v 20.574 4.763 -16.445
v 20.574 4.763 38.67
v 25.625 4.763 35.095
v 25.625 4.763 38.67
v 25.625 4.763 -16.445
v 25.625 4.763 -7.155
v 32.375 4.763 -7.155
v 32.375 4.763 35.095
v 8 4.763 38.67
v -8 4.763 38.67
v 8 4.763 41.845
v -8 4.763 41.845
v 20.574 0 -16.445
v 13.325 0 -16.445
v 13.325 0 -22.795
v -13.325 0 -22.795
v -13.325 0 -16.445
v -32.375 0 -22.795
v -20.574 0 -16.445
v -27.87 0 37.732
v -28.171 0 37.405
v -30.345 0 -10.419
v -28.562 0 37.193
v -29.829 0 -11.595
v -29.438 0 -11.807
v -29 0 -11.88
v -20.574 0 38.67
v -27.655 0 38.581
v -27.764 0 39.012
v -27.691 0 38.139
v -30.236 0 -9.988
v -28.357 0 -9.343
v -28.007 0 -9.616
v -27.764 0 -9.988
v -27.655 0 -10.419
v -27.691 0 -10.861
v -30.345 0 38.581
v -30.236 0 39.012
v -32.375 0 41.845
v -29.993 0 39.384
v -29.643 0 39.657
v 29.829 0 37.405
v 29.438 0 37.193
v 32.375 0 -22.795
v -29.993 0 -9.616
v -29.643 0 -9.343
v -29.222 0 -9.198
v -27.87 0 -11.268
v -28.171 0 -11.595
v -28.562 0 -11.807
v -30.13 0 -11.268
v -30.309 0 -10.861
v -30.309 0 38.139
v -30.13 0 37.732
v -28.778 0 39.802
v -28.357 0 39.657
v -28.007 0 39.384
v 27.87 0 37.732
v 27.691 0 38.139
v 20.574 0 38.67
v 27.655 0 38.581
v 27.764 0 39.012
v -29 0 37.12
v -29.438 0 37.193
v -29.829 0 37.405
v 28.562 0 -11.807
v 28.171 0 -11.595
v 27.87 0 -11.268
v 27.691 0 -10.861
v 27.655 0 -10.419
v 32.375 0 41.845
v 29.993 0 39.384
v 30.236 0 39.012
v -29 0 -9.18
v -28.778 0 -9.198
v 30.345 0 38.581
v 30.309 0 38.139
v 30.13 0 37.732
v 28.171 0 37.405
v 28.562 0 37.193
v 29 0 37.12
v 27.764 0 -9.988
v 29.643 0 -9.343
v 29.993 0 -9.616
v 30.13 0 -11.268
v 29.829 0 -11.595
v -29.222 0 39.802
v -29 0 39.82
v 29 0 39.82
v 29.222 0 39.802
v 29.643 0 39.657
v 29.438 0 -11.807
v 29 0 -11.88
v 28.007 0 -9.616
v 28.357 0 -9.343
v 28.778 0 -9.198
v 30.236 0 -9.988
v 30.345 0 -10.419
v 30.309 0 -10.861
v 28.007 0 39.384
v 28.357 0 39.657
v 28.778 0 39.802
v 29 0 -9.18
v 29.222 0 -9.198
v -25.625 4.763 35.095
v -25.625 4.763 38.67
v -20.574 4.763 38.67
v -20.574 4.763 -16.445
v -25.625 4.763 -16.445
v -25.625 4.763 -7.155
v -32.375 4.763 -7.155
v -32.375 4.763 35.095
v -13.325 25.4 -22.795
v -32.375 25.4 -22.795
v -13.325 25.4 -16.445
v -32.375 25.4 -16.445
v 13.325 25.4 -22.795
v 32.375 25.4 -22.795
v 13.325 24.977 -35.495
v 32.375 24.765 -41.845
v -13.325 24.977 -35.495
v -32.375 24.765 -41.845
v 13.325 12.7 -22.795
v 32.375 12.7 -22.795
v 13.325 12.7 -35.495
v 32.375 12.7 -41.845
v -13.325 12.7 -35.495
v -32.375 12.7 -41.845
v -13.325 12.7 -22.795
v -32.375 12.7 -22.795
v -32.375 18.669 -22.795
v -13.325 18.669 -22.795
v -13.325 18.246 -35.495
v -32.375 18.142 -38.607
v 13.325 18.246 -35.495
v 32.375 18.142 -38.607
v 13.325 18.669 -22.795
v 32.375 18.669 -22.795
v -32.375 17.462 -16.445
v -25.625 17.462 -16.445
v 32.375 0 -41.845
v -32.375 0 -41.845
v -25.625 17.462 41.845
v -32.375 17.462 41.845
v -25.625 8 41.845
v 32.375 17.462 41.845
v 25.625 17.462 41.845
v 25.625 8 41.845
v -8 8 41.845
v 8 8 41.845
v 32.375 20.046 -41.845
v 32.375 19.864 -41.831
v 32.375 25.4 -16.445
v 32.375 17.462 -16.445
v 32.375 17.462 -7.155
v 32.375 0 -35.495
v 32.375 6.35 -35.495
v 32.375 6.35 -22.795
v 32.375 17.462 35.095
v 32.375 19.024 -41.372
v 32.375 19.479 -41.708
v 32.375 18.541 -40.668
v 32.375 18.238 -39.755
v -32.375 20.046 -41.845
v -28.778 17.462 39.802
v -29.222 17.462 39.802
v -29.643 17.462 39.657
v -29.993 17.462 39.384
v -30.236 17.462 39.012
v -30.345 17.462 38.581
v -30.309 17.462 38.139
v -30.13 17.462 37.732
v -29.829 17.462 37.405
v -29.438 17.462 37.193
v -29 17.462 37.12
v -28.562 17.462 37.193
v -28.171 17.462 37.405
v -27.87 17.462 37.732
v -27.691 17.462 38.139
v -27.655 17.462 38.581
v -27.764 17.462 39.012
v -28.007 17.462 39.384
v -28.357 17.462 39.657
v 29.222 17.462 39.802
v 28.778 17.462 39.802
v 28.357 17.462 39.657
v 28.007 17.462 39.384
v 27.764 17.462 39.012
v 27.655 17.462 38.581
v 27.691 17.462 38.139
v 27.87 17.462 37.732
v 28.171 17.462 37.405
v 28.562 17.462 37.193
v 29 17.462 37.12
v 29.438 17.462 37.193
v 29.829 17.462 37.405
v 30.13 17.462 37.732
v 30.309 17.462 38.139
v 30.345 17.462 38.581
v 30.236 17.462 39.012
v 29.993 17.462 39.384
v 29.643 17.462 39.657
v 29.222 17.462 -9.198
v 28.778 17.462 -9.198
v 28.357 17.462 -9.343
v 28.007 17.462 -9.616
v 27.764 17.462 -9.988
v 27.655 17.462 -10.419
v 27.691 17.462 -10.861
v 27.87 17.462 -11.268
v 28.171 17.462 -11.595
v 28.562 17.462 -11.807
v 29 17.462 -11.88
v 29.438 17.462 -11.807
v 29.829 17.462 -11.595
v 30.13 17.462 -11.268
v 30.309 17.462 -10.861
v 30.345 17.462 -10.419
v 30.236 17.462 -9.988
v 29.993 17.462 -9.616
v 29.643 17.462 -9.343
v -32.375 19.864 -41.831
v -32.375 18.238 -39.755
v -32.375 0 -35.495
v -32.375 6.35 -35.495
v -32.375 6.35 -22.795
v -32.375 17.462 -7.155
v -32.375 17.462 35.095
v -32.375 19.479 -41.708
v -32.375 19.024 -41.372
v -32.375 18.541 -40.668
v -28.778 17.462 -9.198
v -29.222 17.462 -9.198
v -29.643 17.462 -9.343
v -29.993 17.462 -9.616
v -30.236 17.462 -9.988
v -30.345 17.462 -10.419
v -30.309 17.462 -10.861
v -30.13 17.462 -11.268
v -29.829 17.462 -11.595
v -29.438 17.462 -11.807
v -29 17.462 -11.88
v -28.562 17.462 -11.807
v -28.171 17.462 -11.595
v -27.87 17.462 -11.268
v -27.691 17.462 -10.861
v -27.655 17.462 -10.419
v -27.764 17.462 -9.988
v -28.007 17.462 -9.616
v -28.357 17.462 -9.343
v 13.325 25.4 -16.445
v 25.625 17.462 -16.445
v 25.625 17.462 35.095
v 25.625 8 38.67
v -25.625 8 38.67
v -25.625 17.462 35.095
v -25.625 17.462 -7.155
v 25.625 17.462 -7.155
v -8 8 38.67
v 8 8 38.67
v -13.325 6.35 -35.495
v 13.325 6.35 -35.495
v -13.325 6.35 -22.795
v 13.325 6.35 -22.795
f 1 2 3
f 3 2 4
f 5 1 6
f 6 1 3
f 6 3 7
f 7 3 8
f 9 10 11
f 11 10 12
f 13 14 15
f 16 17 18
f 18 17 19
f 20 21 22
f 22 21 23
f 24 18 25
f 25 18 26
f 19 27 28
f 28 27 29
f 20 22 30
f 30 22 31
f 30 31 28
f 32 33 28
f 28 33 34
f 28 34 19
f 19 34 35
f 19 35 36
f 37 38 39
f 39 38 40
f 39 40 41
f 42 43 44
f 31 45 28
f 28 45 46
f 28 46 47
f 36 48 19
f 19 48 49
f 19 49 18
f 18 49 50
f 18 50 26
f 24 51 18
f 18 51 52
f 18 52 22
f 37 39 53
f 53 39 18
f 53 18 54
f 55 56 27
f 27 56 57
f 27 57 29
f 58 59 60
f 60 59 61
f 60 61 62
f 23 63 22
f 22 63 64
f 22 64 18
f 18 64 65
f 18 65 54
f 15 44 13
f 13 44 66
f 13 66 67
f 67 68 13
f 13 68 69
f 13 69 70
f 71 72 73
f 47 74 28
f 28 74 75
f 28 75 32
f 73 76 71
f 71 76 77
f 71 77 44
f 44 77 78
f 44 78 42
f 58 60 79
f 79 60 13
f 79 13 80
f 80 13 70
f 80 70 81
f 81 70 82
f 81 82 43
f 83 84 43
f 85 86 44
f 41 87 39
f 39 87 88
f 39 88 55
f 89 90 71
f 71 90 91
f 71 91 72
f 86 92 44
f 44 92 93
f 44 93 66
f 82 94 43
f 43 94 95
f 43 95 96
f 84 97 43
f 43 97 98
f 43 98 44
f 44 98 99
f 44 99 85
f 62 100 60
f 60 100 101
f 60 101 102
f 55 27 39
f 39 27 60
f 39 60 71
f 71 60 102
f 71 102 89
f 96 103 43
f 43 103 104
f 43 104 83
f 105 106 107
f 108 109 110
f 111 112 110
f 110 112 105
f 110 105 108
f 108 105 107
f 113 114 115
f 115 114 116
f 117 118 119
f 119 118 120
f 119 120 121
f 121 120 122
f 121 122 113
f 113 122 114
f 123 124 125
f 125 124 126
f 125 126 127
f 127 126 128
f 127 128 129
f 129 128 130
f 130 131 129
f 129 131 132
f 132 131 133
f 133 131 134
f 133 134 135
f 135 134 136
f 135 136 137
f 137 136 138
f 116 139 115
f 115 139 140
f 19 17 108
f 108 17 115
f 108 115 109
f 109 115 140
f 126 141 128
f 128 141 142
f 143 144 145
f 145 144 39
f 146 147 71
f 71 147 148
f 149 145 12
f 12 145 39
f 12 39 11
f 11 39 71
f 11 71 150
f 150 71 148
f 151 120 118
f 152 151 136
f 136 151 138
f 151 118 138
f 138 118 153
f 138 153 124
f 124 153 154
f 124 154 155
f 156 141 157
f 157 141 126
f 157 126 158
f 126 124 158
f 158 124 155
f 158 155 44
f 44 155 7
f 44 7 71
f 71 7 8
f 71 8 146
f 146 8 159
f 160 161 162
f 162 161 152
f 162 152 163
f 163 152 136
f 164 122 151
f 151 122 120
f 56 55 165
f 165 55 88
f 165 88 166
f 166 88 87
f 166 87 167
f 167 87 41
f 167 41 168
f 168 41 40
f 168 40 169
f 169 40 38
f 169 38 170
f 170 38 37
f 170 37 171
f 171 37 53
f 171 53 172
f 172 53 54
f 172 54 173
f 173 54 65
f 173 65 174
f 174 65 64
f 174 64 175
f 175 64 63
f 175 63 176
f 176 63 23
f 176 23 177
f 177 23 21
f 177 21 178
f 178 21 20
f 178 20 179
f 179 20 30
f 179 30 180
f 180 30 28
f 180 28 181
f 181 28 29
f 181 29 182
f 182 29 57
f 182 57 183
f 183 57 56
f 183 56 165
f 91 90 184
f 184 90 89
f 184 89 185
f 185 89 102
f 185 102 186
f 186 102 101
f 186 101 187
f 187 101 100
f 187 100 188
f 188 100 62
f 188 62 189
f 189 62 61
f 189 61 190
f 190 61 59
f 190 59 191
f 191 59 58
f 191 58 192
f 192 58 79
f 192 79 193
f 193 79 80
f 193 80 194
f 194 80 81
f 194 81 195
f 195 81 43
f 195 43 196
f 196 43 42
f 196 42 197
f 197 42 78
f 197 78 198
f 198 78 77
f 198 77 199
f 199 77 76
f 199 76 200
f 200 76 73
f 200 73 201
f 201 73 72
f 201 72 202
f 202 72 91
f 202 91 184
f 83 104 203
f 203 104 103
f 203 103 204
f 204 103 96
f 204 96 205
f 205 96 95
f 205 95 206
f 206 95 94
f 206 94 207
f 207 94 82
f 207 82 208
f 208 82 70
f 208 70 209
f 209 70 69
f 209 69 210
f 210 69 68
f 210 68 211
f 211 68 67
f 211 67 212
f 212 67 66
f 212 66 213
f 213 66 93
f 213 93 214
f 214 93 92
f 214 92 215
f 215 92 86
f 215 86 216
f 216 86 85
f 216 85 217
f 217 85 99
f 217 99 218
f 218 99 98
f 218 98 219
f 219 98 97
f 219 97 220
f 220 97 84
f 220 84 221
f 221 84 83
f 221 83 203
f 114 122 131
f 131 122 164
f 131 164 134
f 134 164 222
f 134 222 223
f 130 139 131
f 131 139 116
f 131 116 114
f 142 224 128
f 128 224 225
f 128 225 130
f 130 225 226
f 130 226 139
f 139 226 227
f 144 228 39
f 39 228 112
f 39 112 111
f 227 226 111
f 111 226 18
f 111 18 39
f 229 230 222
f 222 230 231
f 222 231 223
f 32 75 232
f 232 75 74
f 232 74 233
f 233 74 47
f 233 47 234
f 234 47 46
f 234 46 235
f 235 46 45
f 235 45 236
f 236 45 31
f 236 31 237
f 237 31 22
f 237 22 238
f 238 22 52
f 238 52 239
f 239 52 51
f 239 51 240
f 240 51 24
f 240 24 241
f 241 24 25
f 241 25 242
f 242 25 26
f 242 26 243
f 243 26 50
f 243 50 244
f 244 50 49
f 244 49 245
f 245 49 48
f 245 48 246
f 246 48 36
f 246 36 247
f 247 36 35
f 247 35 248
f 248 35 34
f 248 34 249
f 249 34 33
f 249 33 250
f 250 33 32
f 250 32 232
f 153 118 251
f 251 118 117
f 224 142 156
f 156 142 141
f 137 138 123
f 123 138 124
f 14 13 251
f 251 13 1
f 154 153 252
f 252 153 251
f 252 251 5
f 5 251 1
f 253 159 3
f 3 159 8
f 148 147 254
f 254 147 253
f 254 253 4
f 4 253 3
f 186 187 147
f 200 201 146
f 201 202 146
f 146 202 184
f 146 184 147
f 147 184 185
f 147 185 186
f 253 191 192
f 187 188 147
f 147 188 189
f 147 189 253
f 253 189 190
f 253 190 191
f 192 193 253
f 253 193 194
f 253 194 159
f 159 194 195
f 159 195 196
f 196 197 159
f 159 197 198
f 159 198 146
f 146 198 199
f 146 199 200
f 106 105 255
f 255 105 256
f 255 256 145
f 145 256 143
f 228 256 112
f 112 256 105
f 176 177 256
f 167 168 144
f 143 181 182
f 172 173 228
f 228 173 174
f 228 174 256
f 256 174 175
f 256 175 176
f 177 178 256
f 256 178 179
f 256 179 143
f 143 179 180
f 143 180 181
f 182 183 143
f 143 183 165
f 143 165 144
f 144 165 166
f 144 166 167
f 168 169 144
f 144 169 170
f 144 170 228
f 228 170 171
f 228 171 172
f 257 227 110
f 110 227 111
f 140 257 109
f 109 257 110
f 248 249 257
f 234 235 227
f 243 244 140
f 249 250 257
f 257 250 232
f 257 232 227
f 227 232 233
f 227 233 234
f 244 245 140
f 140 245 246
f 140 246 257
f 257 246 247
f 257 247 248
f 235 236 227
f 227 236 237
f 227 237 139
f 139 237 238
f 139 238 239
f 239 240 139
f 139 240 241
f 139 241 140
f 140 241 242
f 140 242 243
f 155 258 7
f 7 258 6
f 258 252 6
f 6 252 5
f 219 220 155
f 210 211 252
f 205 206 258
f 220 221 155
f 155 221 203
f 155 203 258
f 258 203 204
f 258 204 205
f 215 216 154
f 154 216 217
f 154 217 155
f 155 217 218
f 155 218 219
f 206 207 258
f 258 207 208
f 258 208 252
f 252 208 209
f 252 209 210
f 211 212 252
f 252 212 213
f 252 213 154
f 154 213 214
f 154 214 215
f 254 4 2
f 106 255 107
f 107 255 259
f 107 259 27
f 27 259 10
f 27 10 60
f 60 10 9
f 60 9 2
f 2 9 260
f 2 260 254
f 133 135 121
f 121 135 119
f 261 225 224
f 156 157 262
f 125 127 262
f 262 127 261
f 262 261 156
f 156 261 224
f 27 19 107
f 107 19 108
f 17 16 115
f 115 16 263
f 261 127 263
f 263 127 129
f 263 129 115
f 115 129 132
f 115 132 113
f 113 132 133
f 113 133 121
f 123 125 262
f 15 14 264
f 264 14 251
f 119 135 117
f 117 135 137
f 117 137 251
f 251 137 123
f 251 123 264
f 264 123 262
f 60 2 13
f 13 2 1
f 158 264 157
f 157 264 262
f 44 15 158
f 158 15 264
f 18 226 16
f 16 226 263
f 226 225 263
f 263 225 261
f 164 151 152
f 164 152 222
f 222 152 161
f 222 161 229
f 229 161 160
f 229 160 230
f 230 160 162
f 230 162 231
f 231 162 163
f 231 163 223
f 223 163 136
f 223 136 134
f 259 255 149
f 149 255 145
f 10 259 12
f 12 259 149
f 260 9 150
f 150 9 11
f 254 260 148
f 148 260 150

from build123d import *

# Parameters (mm, degrees)
SKETCH1_W               = 64.75
SKETCH1_H               = 83.69
SKETCH1_R               = 1.35
BOSS_EXTRUDE1_DEPTH     = 25.4
CUT_EXTRUDE1_DEPTH      = 82.17097095
SKETCH5_W               = 58.29
SKETCH5_H               = 20.6375
CUT_EXTRUDE3_DEPTH      = 82.17097095
BOSS_EXTRUDE2_START     = 4.7625
SKETCH1_3_W             = 6.75
SKETCH1_3_H             = 6.75
SKETCH1_3_R             = 1.35
SKETCH1_3_H_2           = 2.54
BOSS_EXTRUDE2_DEPTH     = 12.7
CUT_EXTRUDE6_DEPTH      = 55.409876401
CUT_EXTRUDE6_DEPTH_BACK = 55.409876401
SKETCH7_W               = 26.65
SKETCH7_H               = 12.7
SKETCH7_W_2             = 7.249
SKETCH7_H_2             = 55.115
SKETCH26_W              = 12.7
SKETCH26_H              = 6.35
CUT_EXTRUDE17_DEPTH     = 82.17097095
SKETCH22_W              = 17.625
SKETCH22_H              = 3.2375
BOSS_EXTRUDE6_DEPTH     = 3.175


with BuildPart() as part:
    # Sketch1 → Boss-Extrude1 (new body)
    with BuildSketch(Plane(origin=(0, 0, 0), x_dir=(1, 0, 0), z_dir=(0, 1, 0))):
        Rectangle(SKETCH1_W, SKETCH1_H)
        with Locations(Location((-29, 10.53, 0), (0, 0, 270))):
            Circle(SKETCH1_R, mode=Mode.SUBTRACT)
        with Locations(Location((-29, -38.47, 0), (0, 0, 270))):
            Circle(SKETCH1_R, mode=Mode.SUBTRACT)
        with Locations(Location((29, 10.53, 0), (0, 0, 270))):
            Circle(SKETCH1_R, mode=Mode.SUBTRACT)
        with Locations(Location((29, -38.47, 0), (0, 0, 270))):
            Circle(SKETCH1_R, mode=Mode.SUBTRACT)
    extrude(amount=BOSS_EXTRUDE1_DEPTH)

    # Sketch3 → Cut-Extrude1 (cut, through all)
    with BuildSketch(Plane(origin=(32.375, 0, 0), x_dir=(0, 0, -1), z_dir=(1, 0, 0))):
        Polygon((41.845, 18.034), (22.795, 18.669), (22.795, 12.7), (41.845, 12.7), align=None)
        Polygon((41.845, 25.4), (22.795, 25.4), (41.845, 24.765), align=None)
    extrude(amount=-CUT_EXTRUDE1_DEPTH, mode=Mode.SUBTRACT)

    # Sketch5 → Cut-Extrude3 (cut, through all)
    with BuildSketch(Plane(origin=(32.375, 0, 0), x_dir=(0, 0, -1), z_dir=(1, 0, 0))):
        with Locations((-12.7, 15.08125)):
            Rectangle(SKETCH5_W, SKETCH5_H)
    extrude(amount=-CUT_EXTRUDE3_DEPTH, mode=Mode.SUBTRACT)

    # Sketch1<3> → Boss-Extrude2 (add)
    # profile 1 of 6: a face of its own
    with BuildSketch(Plane(origin=(0, 0, 0), x_dir=(1, 0, 0), z_dir=(0, 1, 0)).offset(BOSS_EXTRUDE2_START)):
        with Locations((29, -38.47)):
            Rectangle(SKETCH1_3_W, SKETCH1_3_H)
        with Locations(Location((29, -38.47, 0), (0, 0, 90))):
            Circle(SKETCH1_3_R, mode=Mode.SUBTRACT)
    # profile 2 of 6: a face of its own
    with BuildSketch(Plane(origin=(0, 0, 0), x_dir=(1, 0, 0), z_dir=(0, 1, 0)).offset(BOSS_EXTRUDE2_START)):
        with Locations((-29, -38.47)):
            Rectangle(SKETCH1_3_W, SKETCH1_3_H)
        with Locations(Location((-29, -38.47, 0), (0, 0, 90))):
            Circle(SKETCH1_3_R, mode=Mode.SUBTRACT)
    # profile 3 of 6: a face of its own
    with BuildSketch(Plane(origin=(0, 0, 0), x_dir=(1, 0, 0), z_dir=(0, 1, 0)).offset(BOSS_EXTRUDE2_START)):
        with Locations((-29, 10.53)):
            Rectangle(SKETCH1_3_W, SKETCH1_3_H)
        with Locations(Location((-29, 10.53, 0), (0, 0, 90))):
            Circle(SKETCH1_3_R, mode=Mode.SUBTRACT)
    # profile 4 of 6: a face of its own
    with BuildSketch(Plane(origin=(0, 0, 0), x_dir=(1, 0, 0), z_dir=(0, 1, 0)).offset(BOSS_EXTRUDE2_START)):
        with Locations((29, 10.53)):
            Rectangle(SKETCH1_3_W, SKETCH1_3_H)
        with Locations(Location((29, 10.53, 0), (0, 0, 90))):
            Circle(SKETCH1_3_R, mode=Mode.SUBTRACT)
    # profile 5 of 6: a face of its own
    with BuildSketch(Plane(origin=(0, 0, 0), x_dir=(1, 0, 0), z_dir=(0, 1, 0)).offset(BOSS_EXTRUDE2_START)):
        with Locations((-29, 15.175)):
            Rectangle(SKETCH1_3_W, SKETCH1_3_H_2)
    # profile 6 of 6: a face of its own
    with BuildSketch(Plane(origin=(0, 0, 0), x_dir=(1, 0, 0), z_dir=(0, 1, 0)).offset(BOSS_EXTRUDE2_START)):
        with Locations((29, 15.175)):
            Rectangle(SKETCH1_3_W, SKETCH1_3_H_2)
    extrude(amount=BOSS_EXTRUDE2_DEPTH)

    # Sketch7 → Cut-Extrude6 (cut, two sides: drawn at the far end of the back side and taken through both)
    with BuildSketch(Plane(origin=(0, 12.7, 0), x_dir=(1, 0, 0), z_dir=(0, 1, 0)).offset(-CUT_EXTRUDE6_DEPTH_BACK)):
        Polygon((-13.325, 16.445), (-13.325, -38.67), (13.325, -38.67), (13.325, 16.445), (13.325, 22.795), (-13.325, 22.795), align=None)
        with Locations((0, 29.145)):
            Rectangle(SKETCH7_W, SKETCH7_H)
        with Locations((-16.9495, -11.1125)):
            Rectangle(SKETCH7_W_2, SKETCH7_H_2)
        with Locations((16.9495, -11.1125)):
            Rectangle(SKETCH7_W_2, SKETCH7_H_2)
    extrude(amount=CUT_EXTRUDE6_DEPTH + CUT_EXTRUDE6_DEPTH_BACK, mode=Mode.SUBTRACT)

    # Sketch26 → Cut-Extrude17 (cut, through all)
    with BuildSketch(Plane(origin=(32.375, 0, 0), x_dir=(0, 0, -1), z_dir=(1, 0, 0))):
        with Locations((29.145, 3.175)):
            Rectangle(SKETCH26_W, SKETCH26_H)
    extrude(amount=-CUT_EXTRUDE17_DEPTH, mode=Mode.SUBTRACT)

    # Fillet1
    # an asymmetric fillet: 3.175, 1.905 mm, written as the material it takes off along each edge
    with BuildSketch(Plane(origin=(40.475658498, 18.034, -41.845), x_dir=(0, 1, 0), z_dir=(-1, 0, 0))) as fillet1_piece_1:
        with BuildLine():
            Bezier((2.011891373, 0), (0, 0), (0.107948825, -3.238464752), weights=[1, 0.695228441, 1])
            Line((0.107948825, -3.238464752), (0, 0))
            Line((0, 0), (2.011891373, 0))
        make_face()
    extrude(amount=80.951316996, mode=Mode.SUBTRACT)

    # Sketch22 → Boss-Extrude6 (add)
    with BuildSketch(Plane.XY.offset(41.845)):
        with Locations((-16.8125, 6.38125)):
            Rectangle(SKETCH22_W, SKETCH22_H)
        with Locations((16.8125, 6.38125)):
            Rectangle(SKETCH22_W, SKETCH22_H)
    extrude(amount=-BOSS_EXTRUDE6_DEPTH)


solid = part.part
